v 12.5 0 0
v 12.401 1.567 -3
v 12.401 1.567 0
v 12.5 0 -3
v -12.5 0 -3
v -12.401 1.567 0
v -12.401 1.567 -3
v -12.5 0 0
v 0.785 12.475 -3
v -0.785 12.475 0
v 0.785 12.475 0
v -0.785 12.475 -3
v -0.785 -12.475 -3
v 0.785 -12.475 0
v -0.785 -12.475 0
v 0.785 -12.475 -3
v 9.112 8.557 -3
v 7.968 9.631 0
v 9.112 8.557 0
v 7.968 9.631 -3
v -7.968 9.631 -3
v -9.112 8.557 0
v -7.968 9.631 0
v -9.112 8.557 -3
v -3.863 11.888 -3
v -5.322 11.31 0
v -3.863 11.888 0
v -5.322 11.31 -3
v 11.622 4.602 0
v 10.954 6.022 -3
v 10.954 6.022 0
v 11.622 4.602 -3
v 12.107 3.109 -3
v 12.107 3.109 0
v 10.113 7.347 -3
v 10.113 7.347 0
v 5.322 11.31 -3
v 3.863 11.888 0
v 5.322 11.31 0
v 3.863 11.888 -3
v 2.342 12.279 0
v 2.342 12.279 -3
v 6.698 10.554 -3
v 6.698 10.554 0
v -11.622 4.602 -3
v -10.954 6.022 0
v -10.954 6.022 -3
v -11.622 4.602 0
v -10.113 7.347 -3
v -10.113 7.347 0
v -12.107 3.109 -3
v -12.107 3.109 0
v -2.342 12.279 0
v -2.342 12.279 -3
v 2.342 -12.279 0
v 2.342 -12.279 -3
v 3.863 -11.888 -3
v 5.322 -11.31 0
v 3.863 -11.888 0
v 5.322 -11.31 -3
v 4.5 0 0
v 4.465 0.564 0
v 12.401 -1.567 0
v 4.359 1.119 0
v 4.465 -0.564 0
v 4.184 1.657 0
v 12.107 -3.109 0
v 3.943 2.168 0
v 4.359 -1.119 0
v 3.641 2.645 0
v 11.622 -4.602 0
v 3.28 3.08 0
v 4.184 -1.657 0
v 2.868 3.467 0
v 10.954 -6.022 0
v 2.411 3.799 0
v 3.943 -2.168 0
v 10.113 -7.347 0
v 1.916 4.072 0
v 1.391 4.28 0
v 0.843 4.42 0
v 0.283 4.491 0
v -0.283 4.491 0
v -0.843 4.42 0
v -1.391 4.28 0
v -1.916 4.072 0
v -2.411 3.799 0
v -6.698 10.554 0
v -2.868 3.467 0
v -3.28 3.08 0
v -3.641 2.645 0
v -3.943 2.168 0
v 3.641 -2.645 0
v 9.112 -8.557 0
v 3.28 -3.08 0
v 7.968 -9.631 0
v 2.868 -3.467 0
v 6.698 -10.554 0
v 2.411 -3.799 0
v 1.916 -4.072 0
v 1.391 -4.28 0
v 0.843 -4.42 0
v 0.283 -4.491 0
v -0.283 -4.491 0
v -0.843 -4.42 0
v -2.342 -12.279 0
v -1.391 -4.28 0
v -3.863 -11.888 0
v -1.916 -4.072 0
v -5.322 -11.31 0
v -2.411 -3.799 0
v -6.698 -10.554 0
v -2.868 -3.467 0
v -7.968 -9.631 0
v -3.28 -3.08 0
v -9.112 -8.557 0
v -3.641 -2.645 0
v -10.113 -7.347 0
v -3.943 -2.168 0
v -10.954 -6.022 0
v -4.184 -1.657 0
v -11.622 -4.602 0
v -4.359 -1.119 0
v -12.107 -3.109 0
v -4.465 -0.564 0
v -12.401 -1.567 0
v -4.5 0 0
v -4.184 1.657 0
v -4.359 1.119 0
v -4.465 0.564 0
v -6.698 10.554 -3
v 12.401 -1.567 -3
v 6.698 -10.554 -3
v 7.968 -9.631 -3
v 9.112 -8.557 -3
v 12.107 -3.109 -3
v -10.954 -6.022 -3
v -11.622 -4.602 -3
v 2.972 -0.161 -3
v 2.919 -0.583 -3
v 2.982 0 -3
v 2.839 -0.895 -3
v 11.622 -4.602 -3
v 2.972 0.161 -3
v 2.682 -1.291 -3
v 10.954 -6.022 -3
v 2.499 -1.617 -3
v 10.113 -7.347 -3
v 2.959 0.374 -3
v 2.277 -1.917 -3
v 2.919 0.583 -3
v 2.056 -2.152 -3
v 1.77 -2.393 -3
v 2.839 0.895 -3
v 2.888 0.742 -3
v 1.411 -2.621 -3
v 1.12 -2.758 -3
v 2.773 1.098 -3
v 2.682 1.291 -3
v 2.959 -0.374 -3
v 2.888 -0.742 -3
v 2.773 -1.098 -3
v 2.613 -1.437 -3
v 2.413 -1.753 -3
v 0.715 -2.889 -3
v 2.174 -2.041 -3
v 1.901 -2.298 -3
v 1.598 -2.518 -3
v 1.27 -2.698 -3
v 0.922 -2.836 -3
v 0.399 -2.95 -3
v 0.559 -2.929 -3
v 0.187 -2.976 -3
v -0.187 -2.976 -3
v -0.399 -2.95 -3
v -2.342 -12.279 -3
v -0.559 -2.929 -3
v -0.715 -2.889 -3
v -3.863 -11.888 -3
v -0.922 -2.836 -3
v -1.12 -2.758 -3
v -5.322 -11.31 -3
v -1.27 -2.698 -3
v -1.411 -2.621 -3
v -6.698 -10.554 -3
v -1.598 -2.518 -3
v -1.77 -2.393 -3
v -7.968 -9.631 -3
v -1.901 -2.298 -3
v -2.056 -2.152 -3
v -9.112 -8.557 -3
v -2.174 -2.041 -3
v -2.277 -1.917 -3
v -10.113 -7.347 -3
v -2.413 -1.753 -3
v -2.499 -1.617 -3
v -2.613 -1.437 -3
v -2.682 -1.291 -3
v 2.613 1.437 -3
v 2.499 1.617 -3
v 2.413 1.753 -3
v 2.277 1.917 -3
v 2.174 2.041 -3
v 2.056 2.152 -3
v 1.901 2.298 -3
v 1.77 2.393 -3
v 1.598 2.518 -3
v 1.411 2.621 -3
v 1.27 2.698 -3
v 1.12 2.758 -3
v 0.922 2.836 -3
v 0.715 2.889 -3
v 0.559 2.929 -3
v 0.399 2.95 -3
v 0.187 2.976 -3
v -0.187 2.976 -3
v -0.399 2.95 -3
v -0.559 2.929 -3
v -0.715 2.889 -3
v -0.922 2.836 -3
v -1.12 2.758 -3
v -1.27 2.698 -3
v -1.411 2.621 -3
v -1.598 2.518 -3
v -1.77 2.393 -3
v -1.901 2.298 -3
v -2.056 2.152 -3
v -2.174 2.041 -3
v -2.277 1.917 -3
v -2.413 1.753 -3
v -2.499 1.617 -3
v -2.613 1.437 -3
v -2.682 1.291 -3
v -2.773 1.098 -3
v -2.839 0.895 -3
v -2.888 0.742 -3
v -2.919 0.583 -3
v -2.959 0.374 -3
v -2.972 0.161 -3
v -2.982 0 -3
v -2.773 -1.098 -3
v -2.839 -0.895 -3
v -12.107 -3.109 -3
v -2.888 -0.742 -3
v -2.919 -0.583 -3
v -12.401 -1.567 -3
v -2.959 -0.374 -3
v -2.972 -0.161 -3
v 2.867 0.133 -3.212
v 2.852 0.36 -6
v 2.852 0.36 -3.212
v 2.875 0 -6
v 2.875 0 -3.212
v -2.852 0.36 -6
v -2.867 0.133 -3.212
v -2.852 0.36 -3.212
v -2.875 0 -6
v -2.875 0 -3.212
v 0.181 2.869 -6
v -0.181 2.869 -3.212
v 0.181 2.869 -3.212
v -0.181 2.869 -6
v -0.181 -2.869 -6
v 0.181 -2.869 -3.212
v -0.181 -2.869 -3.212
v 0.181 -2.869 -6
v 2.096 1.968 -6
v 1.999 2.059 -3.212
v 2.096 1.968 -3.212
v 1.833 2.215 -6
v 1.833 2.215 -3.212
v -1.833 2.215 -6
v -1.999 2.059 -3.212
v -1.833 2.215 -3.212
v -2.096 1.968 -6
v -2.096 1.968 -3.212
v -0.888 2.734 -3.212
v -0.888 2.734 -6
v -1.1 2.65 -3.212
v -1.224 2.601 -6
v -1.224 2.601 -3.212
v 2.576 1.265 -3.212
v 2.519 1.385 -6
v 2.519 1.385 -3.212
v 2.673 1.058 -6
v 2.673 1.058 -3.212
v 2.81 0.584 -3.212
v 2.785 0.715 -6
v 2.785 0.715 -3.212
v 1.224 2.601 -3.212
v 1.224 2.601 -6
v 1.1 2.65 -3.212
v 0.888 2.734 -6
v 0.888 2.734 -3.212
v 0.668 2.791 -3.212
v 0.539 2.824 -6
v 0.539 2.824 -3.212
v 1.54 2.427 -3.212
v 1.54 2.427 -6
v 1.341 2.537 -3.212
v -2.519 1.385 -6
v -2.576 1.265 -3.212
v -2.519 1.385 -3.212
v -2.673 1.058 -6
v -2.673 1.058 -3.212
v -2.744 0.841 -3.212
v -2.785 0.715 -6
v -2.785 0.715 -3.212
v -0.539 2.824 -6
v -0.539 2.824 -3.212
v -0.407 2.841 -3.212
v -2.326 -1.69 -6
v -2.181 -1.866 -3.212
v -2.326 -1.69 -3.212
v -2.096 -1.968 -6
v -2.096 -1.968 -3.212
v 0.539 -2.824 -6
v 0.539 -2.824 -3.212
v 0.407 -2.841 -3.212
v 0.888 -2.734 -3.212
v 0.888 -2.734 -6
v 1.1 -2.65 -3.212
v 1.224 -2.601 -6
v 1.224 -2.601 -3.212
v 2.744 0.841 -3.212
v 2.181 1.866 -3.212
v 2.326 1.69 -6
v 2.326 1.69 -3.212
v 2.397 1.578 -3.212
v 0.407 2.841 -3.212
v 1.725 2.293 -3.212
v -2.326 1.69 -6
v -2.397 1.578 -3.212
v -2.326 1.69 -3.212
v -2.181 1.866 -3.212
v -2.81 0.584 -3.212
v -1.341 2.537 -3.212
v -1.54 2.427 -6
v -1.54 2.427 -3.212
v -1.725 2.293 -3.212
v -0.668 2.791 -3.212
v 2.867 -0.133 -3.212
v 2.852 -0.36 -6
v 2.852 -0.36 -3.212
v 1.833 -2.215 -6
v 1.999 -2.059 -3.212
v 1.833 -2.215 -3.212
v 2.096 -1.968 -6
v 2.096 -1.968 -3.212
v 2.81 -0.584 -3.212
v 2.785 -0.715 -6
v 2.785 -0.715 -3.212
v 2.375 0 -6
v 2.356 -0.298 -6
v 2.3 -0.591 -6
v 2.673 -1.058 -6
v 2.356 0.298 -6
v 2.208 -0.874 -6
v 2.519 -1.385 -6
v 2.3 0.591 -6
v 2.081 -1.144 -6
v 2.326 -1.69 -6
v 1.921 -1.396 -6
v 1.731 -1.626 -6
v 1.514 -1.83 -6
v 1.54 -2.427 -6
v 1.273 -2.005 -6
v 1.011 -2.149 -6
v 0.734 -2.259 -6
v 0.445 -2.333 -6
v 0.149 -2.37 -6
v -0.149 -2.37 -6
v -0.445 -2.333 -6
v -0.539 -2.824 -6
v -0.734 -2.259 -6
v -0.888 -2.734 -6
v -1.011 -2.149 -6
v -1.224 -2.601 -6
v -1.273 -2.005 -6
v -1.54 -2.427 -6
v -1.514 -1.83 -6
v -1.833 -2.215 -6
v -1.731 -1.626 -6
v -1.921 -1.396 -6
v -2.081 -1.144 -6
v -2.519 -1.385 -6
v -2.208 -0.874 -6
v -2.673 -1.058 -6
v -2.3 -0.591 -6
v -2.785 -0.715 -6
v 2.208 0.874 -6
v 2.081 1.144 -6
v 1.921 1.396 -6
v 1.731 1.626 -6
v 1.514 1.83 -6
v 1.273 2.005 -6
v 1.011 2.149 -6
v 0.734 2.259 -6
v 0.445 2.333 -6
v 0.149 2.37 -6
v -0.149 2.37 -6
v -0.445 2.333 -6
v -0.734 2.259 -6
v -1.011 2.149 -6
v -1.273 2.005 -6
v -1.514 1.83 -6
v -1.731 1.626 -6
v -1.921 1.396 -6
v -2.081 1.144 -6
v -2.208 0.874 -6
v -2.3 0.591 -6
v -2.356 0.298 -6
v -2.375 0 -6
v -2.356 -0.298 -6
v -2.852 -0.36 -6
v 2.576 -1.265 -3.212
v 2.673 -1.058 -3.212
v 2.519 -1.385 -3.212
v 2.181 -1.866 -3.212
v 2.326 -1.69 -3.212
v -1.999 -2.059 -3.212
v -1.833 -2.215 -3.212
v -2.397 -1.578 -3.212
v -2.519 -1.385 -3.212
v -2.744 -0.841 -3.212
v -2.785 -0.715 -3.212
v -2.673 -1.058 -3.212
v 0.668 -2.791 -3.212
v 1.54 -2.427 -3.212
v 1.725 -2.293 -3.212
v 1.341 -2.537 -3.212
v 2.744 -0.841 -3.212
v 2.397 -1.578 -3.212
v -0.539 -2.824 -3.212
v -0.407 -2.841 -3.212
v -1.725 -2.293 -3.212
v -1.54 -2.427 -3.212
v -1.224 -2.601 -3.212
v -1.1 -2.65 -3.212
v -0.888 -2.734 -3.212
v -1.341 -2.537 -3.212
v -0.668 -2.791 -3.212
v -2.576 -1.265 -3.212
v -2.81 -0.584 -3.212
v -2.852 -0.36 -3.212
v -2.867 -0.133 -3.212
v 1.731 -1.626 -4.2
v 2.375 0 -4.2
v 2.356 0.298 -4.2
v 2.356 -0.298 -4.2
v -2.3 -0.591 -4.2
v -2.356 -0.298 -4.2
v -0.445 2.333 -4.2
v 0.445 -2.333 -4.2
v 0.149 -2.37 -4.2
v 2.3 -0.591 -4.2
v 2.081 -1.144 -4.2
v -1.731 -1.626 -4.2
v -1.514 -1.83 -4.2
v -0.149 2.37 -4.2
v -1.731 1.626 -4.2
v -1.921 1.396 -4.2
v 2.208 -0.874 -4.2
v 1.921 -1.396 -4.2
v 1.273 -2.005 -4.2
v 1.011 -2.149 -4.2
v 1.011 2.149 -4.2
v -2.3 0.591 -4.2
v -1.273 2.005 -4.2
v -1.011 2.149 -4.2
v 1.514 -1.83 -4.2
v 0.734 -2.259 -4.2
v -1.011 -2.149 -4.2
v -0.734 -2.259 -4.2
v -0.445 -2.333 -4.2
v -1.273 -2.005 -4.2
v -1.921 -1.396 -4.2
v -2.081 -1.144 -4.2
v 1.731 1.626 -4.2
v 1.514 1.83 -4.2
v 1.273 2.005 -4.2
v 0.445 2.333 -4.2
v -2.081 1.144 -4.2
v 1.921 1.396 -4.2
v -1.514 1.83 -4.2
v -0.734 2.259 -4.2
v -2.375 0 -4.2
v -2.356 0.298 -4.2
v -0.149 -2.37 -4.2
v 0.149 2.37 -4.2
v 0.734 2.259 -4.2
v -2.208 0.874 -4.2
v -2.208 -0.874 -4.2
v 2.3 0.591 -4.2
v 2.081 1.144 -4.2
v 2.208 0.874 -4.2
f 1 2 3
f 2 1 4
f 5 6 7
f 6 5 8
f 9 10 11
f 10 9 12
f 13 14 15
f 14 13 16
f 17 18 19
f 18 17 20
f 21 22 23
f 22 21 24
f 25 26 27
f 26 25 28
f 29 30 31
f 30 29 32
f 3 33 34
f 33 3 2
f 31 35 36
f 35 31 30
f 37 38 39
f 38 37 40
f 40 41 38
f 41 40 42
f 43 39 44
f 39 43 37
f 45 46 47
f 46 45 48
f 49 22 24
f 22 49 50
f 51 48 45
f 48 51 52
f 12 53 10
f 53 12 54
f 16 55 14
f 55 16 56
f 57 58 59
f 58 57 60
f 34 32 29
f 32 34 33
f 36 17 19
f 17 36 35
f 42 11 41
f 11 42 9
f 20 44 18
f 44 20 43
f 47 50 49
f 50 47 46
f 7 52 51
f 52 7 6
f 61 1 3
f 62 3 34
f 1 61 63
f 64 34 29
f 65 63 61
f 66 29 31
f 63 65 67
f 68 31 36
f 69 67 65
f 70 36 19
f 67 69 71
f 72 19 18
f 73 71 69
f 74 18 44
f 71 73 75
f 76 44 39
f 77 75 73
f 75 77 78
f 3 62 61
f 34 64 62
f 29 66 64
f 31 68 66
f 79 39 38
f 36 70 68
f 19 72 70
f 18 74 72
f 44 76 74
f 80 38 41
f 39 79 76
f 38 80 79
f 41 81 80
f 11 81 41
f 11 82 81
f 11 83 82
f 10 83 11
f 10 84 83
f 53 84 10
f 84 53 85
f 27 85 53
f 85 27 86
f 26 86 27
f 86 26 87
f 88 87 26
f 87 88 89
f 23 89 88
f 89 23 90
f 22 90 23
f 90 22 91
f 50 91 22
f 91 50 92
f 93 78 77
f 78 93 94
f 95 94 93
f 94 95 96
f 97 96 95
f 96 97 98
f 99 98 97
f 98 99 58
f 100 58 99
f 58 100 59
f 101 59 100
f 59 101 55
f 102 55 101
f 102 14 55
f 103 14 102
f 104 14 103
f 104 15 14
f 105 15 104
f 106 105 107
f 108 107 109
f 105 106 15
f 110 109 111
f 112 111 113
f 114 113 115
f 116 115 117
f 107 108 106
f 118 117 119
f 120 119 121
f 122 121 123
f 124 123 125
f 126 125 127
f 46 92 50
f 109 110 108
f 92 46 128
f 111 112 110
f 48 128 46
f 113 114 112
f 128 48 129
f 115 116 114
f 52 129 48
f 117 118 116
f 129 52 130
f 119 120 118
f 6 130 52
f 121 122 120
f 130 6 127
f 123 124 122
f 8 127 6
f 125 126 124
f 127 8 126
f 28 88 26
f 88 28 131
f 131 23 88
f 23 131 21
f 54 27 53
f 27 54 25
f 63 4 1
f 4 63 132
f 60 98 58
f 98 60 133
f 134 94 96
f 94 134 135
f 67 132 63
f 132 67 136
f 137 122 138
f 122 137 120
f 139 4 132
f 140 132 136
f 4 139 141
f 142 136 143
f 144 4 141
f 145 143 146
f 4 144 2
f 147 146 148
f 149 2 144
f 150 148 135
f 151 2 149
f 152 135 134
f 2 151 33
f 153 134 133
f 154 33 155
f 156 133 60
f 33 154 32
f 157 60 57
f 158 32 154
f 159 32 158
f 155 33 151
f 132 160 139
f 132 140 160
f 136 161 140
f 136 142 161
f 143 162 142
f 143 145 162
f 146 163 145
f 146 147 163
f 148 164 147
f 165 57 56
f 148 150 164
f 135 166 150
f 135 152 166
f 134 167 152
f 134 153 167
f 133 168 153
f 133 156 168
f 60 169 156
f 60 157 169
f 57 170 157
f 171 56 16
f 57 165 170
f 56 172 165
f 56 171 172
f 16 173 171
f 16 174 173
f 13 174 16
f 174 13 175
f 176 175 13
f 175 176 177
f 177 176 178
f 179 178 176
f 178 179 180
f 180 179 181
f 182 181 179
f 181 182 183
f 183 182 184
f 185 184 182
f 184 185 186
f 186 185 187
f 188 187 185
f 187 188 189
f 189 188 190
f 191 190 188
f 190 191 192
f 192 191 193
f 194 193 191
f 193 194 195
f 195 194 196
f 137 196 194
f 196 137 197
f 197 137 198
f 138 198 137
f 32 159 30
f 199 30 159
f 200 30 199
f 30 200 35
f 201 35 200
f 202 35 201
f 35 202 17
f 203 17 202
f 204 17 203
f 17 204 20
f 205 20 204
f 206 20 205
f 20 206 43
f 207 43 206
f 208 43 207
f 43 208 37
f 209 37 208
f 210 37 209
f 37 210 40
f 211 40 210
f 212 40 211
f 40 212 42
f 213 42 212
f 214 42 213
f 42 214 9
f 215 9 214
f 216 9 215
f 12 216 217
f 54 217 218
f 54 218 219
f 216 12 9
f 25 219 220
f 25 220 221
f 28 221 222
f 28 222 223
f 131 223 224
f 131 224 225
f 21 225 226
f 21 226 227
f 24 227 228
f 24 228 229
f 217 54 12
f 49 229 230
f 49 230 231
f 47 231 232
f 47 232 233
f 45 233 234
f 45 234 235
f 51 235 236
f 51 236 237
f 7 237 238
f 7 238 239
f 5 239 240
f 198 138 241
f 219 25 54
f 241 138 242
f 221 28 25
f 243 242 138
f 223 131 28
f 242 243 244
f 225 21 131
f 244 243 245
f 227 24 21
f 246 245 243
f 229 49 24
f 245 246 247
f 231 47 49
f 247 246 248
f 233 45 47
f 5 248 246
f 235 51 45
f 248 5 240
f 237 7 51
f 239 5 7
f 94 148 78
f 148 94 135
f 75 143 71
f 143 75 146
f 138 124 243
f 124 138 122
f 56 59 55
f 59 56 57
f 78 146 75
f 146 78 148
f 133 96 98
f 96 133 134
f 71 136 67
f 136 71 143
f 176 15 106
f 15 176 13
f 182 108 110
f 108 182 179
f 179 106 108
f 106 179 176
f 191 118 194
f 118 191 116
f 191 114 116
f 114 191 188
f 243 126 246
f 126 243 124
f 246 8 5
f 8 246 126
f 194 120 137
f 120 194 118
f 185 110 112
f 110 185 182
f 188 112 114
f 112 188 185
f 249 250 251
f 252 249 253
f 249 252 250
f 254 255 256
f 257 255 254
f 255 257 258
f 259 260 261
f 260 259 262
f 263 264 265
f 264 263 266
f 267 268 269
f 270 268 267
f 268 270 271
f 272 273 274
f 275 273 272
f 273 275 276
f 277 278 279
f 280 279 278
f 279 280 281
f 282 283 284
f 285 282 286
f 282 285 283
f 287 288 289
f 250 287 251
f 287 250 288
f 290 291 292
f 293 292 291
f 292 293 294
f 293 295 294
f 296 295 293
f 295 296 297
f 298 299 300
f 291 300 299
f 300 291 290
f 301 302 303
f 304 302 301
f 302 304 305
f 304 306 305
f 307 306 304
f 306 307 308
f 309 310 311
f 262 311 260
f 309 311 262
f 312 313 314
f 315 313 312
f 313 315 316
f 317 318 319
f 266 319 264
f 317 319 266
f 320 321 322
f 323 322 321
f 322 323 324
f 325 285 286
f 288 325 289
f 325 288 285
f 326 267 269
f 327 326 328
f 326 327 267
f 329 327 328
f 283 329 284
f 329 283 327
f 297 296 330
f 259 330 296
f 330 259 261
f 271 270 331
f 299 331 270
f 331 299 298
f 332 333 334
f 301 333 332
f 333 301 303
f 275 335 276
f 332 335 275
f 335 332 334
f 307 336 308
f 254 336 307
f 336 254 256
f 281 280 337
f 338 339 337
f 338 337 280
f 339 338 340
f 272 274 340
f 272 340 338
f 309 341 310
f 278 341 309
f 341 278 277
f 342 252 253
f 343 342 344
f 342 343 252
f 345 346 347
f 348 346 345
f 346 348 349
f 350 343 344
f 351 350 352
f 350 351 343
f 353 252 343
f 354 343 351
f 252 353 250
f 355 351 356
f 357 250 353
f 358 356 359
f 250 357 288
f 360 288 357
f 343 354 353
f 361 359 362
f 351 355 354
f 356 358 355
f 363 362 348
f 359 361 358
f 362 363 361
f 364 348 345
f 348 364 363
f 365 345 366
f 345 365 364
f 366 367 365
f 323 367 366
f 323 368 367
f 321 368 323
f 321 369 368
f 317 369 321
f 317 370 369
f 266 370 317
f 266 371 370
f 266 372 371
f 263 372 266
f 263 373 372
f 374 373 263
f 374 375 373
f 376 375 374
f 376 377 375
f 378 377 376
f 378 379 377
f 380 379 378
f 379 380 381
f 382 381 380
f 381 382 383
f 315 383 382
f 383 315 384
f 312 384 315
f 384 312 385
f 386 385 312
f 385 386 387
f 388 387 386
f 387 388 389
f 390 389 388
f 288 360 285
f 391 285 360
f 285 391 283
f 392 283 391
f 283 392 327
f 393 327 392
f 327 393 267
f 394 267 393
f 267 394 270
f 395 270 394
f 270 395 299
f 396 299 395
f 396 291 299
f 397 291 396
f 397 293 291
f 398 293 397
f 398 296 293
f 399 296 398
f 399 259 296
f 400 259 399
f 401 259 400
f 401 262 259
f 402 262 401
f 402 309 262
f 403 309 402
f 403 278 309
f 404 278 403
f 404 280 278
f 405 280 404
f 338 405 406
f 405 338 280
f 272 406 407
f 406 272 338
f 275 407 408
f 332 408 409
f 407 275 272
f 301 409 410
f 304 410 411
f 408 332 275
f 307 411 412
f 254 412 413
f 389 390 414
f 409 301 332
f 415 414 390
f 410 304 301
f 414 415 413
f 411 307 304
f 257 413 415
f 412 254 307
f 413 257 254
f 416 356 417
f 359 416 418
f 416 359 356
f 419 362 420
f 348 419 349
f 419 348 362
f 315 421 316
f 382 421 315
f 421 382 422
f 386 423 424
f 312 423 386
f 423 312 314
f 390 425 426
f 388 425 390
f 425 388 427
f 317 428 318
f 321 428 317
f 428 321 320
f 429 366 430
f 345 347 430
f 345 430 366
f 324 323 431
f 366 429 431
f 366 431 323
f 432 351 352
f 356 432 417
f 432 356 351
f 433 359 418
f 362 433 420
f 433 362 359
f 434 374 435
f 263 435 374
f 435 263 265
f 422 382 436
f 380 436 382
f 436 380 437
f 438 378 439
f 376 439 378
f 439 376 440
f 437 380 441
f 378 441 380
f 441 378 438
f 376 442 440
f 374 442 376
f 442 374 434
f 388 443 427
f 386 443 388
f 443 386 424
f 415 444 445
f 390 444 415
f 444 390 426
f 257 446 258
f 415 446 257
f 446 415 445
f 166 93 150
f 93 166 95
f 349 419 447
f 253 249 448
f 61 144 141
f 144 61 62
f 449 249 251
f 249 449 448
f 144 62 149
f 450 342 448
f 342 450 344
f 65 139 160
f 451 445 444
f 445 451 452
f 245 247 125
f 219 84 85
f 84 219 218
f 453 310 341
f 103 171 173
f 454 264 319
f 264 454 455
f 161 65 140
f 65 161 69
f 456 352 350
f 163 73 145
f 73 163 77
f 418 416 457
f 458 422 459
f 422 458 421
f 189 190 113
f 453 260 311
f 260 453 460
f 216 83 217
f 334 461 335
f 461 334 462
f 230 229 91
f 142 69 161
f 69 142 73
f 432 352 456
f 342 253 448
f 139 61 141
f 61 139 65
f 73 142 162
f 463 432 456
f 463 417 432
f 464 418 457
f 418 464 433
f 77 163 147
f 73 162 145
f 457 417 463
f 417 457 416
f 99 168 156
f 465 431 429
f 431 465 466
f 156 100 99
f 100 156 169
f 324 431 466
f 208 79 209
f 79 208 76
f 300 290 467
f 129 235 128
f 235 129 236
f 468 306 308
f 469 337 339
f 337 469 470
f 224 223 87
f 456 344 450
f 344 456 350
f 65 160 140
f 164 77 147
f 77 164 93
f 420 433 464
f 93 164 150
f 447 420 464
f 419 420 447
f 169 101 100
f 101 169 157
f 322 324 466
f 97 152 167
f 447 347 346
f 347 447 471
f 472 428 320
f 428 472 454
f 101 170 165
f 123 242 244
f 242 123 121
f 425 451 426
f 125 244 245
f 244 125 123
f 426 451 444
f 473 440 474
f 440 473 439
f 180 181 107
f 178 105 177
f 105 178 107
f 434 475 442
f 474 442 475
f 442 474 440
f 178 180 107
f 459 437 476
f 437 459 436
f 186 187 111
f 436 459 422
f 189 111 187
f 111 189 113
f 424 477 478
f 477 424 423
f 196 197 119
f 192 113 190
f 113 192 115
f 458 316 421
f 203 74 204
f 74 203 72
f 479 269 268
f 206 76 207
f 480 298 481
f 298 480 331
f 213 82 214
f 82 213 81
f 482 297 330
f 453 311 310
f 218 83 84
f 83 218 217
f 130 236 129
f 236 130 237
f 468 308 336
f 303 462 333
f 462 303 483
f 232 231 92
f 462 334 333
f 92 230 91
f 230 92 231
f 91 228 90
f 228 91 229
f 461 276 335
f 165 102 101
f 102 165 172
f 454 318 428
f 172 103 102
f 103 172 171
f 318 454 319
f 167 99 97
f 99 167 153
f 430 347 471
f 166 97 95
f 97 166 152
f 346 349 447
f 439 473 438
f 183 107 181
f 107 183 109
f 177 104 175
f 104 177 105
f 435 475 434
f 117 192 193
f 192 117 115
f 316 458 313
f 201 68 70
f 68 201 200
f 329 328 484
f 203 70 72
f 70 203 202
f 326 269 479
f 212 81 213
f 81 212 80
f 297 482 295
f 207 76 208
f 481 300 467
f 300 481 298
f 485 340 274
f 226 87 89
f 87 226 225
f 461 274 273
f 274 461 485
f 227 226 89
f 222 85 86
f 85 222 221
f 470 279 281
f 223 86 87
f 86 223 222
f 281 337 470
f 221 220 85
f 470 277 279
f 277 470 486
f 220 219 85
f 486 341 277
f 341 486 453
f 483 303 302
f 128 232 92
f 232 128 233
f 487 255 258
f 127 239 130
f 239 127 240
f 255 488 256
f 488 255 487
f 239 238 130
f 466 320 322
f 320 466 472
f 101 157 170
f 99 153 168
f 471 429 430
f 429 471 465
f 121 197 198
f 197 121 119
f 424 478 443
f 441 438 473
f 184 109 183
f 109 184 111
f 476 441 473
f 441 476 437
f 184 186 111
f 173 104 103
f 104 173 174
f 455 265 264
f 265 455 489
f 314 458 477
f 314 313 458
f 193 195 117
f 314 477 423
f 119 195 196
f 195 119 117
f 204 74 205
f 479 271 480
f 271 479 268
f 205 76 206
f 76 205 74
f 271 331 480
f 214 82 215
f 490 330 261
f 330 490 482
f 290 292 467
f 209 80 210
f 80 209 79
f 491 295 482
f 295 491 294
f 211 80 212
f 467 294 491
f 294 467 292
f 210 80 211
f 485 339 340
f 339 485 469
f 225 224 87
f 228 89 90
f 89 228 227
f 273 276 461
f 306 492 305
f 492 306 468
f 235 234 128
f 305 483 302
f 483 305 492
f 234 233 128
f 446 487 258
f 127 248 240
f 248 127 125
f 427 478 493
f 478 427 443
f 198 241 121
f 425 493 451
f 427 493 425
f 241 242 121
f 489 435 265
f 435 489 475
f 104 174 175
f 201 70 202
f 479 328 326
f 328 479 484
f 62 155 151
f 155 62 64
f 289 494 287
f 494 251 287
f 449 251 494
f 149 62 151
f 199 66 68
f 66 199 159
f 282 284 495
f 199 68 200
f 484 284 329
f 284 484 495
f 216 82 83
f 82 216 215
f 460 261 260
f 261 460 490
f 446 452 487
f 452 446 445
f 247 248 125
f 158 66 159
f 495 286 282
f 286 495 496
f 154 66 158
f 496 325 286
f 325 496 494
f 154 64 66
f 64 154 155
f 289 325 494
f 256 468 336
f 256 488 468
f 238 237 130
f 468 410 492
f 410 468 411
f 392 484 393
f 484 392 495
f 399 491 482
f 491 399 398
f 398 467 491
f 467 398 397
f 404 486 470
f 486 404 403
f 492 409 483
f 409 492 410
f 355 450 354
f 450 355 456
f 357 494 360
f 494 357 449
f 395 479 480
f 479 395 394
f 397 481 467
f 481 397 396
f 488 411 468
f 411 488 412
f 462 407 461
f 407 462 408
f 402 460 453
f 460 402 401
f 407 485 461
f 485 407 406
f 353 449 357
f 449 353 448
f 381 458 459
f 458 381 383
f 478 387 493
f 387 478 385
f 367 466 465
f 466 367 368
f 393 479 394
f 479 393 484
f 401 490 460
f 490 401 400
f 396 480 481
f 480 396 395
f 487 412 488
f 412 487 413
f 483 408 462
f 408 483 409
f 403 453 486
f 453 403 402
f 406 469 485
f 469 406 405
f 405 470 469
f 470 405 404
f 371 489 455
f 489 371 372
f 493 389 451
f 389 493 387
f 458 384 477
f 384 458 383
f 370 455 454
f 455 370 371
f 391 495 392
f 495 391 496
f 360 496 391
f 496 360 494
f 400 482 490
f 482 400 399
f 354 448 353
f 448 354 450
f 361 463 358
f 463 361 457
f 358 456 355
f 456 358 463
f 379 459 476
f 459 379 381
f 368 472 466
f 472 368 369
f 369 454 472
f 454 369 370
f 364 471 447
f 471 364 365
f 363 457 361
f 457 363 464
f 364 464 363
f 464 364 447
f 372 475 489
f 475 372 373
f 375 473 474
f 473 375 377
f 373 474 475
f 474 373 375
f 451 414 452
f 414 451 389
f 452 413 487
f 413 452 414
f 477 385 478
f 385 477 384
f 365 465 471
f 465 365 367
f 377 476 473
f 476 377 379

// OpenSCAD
$fn = 50;

difference() {
	union() {
		translate(v = [0, 0, -3.0]) {
			cylinder(h = 3, r = 12.5);
		}
		#translate(v = [0, 0, -6.0]) {
			cylinder(h = 6, r = 2.875);
		}
	}
	union() {
		translate(v = [0, 0, 0]) {
			rotate(a = [0, 0, 0]) {
				difference() {
					union() {
						translate(v = [0, 0, -6.0]) {
							cylinder(h = 6, r = 2.25);
						}
						translate(v = [0, 0, -4.2]) {
							cylinder(h = 4.2, r1 = 2.375, r2 = 4.5);
						}
						translate(v = [0, 0, -6.0]) {
							cylinder(h = 6, r = 2.375);
						}
						translate(v = [0, 0, -6.0]) {
							cylinder(h = 6, r = 2.25);
						}
					}
					union();
				}
			}
		}
	}
}
